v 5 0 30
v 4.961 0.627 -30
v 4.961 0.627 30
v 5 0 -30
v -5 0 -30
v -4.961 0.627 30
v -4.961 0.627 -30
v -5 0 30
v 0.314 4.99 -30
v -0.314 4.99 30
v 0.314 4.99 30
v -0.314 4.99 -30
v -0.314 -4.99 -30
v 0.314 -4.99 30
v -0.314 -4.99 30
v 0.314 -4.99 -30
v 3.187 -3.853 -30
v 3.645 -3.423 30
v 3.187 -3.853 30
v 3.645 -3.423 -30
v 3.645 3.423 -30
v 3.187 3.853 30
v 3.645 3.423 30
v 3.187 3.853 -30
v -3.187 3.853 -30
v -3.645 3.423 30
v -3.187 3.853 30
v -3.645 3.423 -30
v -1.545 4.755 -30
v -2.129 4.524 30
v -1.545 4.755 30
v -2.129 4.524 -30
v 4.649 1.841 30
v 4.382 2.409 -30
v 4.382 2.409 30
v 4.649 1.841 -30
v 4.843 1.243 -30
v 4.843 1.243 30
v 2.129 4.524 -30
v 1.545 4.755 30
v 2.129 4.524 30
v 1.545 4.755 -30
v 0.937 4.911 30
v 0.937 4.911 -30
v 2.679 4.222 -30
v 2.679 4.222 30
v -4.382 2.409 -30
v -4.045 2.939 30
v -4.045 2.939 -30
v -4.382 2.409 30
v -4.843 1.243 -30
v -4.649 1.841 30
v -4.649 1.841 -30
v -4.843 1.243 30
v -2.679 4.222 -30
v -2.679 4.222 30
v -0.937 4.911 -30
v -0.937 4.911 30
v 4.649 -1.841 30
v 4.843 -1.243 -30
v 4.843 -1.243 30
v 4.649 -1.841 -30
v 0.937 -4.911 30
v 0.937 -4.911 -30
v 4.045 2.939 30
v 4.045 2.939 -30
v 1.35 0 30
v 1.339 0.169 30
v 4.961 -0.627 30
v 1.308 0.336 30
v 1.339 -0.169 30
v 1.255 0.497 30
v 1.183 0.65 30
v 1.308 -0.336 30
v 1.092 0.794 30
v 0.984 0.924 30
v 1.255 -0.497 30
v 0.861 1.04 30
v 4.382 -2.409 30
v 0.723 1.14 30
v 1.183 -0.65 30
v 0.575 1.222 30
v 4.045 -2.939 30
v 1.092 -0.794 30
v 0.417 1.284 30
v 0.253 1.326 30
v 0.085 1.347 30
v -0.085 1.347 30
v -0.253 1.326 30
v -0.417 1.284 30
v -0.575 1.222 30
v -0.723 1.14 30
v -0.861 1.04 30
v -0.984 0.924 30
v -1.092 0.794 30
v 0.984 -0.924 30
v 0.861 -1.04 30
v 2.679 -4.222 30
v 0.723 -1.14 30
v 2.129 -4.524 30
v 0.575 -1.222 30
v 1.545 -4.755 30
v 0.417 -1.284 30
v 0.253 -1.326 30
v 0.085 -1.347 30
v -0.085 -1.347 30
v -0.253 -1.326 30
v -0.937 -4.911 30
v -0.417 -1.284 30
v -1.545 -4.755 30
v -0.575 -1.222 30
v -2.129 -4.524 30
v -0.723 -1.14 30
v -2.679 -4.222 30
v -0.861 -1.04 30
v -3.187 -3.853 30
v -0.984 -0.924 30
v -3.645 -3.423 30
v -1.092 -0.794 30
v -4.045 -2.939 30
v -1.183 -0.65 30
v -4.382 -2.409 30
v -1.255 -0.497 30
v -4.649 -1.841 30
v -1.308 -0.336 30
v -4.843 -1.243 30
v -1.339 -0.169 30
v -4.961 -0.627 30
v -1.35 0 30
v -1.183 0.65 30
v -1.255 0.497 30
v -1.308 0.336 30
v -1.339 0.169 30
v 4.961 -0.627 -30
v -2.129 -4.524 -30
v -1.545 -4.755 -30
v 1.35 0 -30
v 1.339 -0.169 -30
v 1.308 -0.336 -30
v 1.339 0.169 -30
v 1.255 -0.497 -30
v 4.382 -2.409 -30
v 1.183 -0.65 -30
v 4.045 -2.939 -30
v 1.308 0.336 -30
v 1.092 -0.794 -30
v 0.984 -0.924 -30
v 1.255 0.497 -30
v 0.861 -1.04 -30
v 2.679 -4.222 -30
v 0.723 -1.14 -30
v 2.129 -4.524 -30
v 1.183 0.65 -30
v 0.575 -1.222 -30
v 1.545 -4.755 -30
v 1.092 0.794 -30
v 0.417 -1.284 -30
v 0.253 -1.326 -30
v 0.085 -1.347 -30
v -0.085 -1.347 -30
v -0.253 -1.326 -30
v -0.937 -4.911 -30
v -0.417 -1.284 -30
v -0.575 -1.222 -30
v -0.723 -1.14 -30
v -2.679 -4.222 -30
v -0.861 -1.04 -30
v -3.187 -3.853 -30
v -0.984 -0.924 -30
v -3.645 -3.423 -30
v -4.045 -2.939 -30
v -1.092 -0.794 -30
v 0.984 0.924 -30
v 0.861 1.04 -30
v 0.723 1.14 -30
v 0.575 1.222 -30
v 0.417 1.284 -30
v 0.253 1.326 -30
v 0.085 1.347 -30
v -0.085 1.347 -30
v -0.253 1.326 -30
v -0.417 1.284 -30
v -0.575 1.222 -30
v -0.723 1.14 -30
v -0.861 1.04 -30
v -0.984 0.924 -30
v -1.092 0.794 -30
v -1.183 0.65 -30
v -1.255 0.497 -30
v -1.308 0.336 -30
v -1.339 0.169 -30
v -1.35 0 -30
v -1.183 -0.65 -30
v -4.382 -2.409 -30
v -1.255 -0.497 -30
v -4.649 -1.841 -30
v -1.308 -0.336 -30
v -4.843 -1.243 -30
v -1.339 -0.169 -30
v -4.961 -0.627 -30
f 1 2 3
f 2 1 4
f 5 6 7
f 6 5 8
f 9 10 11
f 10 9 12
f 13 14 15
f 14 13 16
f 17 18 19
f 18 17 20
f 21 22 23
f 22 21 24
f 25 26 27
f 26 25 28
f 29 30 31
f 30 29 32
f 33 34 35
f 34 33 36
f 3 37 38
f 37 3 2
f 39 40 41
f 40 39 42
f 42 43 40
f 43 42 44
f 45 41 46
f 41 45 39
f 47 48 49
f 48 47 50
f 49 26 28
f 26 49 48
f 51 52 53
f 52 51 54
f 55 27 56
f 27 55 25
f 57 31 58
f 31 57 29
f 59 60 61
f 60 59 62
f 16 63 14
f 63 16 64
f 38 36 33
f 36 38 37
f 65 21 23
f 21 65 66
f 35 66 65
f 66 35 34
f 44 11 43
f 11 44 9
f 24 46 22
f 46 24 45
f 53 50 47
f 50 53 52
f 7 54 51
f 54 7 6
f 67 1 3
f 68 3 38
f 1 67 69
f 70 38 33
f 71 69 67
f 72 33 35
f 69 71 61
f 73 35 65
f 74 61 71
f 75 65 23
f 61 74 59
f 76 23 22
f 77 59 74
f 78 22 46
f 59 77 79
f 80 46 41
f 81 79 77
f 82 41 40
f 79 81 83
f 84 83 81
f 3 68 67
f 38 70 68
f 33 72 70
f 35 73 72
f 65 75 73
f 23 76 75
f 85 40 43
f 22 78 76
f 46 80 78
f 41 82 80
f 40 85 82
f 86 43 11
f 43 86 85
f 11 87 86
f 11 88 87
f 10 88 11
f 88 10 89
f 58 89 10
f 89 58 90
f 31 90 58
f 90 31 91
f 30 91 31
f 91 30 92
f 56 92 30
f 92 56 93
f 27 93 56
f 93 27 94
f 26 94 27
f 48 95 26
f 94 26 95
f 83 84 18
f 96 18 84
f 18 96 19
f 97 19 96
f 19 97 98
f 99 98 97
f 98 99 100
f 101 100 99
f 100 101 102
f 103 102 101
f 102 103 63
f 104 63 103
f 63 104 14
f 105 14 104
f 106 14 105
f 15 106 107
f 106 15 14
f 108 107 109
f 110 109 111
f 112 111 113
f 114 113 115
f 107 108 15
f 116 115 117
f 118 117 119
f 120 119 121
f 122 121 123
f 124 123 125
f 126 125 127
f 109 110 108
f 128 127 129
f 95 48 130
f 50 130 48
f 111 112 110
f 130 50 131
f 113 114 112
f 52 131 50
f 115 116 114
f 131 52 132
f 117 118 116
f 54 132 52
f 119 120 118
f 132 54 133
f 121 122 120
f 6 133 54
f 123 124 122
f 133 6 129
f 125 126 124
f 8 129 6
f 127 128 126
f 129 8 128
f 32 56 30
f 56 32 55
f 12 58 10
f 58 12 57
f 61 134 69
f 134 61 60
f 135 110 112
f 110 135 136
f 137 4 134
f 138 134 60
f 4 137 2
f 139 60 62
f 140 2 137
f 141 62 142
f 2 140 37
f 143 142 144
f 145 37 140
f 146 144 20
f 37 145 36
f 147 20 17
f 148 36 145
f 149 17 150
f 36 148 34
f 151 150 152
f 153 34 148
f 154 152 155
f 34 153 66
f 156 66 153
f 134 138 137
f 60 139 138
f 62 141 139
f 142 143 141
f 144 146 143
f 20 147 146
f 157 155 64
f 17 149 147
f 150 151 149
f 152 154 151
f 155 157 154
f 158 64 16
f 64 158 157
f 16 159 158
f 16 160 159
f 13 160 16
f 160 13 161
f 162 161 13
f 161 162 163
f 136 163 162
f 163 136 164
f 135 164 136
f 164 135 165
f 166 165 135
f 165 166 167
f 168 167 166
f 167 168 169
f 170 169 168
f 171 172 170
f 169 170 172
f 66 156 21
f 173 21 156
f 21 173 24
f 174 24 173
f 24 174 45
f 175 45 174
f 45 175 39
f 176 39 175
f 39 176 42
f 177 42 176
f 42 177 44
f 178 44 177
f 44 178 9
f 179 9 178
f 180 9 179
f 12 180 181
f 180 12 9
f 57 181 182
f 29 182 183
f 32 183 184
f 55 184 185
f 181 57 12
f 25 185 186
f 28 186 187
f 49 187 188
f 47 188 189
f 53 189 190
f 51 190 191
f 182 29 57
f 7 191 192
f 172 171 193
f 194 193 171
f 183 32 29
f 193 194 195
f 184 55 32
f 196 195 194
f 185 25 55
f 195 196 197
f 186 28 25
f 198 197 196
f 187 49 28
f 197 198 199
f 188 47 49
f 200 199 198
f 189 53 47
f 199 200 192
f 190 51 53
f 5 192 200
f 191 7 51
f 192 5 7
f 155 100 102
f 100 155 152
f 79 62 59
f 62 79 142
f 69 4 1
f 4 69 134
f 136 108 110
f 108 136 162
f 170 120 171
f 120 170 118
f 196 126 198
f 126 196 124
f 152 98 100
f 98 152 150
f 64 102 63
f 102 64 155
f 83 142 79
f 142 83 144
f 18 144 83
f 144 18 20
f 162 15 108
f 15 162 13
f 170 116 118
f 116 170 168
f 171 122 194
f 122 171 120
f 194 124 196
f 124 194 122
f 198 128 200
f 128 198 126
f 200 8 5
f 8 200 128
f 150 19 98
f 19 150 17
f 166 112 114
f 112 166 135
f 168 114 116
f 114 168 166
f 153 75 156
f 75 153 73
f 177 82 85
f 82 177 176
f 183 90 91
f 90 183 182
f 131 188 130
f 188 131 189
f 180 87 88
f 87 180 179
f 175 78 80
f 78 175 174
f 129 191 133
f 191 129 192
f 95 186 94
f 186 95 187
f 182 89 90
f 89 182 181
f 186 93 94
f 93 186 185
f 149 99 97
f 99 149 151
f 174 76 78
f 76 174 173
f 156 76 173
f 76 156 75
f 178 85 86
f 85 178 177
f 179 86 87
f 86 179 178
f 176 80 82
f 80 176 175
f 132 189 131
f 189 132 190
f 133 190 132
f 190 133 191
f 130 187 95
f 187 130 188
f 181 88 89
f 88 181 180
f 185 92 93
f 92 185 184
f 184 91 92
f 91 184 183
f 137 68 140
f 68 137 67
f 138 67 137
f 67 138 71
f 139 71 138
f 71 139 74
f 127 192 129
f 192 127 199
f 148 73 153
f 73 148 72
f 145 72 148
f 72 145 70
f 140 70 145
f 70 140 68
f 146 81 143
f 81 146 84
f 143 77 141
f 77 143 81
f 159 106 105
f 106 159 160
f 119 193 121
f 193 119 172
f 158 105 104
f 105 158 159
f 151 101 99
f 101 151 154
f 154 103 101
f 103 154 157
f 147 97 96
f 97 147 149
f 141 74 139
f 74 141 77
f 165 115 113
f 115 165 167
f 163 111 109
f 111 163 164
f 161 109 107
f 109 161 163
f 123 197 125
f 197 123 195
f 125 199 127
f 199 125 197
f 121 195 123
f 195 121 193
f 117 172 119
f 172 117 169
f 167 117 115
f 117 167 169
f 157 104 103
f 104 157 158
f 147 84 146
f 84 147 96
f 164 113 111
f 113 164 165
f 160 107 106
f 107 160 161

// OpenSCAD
$fn = 50;


difference() {
	union() {
		translate(v = [0, 0, -30.0000000000]) {
			cylinder(h = 60, r = 5.0000000000);
		}
	}
	union() {
		translate(v = [0, 0, -100.0000000000]) {
			cylinder(h = 200, r = 1.3500000000);
		}
	}
}
